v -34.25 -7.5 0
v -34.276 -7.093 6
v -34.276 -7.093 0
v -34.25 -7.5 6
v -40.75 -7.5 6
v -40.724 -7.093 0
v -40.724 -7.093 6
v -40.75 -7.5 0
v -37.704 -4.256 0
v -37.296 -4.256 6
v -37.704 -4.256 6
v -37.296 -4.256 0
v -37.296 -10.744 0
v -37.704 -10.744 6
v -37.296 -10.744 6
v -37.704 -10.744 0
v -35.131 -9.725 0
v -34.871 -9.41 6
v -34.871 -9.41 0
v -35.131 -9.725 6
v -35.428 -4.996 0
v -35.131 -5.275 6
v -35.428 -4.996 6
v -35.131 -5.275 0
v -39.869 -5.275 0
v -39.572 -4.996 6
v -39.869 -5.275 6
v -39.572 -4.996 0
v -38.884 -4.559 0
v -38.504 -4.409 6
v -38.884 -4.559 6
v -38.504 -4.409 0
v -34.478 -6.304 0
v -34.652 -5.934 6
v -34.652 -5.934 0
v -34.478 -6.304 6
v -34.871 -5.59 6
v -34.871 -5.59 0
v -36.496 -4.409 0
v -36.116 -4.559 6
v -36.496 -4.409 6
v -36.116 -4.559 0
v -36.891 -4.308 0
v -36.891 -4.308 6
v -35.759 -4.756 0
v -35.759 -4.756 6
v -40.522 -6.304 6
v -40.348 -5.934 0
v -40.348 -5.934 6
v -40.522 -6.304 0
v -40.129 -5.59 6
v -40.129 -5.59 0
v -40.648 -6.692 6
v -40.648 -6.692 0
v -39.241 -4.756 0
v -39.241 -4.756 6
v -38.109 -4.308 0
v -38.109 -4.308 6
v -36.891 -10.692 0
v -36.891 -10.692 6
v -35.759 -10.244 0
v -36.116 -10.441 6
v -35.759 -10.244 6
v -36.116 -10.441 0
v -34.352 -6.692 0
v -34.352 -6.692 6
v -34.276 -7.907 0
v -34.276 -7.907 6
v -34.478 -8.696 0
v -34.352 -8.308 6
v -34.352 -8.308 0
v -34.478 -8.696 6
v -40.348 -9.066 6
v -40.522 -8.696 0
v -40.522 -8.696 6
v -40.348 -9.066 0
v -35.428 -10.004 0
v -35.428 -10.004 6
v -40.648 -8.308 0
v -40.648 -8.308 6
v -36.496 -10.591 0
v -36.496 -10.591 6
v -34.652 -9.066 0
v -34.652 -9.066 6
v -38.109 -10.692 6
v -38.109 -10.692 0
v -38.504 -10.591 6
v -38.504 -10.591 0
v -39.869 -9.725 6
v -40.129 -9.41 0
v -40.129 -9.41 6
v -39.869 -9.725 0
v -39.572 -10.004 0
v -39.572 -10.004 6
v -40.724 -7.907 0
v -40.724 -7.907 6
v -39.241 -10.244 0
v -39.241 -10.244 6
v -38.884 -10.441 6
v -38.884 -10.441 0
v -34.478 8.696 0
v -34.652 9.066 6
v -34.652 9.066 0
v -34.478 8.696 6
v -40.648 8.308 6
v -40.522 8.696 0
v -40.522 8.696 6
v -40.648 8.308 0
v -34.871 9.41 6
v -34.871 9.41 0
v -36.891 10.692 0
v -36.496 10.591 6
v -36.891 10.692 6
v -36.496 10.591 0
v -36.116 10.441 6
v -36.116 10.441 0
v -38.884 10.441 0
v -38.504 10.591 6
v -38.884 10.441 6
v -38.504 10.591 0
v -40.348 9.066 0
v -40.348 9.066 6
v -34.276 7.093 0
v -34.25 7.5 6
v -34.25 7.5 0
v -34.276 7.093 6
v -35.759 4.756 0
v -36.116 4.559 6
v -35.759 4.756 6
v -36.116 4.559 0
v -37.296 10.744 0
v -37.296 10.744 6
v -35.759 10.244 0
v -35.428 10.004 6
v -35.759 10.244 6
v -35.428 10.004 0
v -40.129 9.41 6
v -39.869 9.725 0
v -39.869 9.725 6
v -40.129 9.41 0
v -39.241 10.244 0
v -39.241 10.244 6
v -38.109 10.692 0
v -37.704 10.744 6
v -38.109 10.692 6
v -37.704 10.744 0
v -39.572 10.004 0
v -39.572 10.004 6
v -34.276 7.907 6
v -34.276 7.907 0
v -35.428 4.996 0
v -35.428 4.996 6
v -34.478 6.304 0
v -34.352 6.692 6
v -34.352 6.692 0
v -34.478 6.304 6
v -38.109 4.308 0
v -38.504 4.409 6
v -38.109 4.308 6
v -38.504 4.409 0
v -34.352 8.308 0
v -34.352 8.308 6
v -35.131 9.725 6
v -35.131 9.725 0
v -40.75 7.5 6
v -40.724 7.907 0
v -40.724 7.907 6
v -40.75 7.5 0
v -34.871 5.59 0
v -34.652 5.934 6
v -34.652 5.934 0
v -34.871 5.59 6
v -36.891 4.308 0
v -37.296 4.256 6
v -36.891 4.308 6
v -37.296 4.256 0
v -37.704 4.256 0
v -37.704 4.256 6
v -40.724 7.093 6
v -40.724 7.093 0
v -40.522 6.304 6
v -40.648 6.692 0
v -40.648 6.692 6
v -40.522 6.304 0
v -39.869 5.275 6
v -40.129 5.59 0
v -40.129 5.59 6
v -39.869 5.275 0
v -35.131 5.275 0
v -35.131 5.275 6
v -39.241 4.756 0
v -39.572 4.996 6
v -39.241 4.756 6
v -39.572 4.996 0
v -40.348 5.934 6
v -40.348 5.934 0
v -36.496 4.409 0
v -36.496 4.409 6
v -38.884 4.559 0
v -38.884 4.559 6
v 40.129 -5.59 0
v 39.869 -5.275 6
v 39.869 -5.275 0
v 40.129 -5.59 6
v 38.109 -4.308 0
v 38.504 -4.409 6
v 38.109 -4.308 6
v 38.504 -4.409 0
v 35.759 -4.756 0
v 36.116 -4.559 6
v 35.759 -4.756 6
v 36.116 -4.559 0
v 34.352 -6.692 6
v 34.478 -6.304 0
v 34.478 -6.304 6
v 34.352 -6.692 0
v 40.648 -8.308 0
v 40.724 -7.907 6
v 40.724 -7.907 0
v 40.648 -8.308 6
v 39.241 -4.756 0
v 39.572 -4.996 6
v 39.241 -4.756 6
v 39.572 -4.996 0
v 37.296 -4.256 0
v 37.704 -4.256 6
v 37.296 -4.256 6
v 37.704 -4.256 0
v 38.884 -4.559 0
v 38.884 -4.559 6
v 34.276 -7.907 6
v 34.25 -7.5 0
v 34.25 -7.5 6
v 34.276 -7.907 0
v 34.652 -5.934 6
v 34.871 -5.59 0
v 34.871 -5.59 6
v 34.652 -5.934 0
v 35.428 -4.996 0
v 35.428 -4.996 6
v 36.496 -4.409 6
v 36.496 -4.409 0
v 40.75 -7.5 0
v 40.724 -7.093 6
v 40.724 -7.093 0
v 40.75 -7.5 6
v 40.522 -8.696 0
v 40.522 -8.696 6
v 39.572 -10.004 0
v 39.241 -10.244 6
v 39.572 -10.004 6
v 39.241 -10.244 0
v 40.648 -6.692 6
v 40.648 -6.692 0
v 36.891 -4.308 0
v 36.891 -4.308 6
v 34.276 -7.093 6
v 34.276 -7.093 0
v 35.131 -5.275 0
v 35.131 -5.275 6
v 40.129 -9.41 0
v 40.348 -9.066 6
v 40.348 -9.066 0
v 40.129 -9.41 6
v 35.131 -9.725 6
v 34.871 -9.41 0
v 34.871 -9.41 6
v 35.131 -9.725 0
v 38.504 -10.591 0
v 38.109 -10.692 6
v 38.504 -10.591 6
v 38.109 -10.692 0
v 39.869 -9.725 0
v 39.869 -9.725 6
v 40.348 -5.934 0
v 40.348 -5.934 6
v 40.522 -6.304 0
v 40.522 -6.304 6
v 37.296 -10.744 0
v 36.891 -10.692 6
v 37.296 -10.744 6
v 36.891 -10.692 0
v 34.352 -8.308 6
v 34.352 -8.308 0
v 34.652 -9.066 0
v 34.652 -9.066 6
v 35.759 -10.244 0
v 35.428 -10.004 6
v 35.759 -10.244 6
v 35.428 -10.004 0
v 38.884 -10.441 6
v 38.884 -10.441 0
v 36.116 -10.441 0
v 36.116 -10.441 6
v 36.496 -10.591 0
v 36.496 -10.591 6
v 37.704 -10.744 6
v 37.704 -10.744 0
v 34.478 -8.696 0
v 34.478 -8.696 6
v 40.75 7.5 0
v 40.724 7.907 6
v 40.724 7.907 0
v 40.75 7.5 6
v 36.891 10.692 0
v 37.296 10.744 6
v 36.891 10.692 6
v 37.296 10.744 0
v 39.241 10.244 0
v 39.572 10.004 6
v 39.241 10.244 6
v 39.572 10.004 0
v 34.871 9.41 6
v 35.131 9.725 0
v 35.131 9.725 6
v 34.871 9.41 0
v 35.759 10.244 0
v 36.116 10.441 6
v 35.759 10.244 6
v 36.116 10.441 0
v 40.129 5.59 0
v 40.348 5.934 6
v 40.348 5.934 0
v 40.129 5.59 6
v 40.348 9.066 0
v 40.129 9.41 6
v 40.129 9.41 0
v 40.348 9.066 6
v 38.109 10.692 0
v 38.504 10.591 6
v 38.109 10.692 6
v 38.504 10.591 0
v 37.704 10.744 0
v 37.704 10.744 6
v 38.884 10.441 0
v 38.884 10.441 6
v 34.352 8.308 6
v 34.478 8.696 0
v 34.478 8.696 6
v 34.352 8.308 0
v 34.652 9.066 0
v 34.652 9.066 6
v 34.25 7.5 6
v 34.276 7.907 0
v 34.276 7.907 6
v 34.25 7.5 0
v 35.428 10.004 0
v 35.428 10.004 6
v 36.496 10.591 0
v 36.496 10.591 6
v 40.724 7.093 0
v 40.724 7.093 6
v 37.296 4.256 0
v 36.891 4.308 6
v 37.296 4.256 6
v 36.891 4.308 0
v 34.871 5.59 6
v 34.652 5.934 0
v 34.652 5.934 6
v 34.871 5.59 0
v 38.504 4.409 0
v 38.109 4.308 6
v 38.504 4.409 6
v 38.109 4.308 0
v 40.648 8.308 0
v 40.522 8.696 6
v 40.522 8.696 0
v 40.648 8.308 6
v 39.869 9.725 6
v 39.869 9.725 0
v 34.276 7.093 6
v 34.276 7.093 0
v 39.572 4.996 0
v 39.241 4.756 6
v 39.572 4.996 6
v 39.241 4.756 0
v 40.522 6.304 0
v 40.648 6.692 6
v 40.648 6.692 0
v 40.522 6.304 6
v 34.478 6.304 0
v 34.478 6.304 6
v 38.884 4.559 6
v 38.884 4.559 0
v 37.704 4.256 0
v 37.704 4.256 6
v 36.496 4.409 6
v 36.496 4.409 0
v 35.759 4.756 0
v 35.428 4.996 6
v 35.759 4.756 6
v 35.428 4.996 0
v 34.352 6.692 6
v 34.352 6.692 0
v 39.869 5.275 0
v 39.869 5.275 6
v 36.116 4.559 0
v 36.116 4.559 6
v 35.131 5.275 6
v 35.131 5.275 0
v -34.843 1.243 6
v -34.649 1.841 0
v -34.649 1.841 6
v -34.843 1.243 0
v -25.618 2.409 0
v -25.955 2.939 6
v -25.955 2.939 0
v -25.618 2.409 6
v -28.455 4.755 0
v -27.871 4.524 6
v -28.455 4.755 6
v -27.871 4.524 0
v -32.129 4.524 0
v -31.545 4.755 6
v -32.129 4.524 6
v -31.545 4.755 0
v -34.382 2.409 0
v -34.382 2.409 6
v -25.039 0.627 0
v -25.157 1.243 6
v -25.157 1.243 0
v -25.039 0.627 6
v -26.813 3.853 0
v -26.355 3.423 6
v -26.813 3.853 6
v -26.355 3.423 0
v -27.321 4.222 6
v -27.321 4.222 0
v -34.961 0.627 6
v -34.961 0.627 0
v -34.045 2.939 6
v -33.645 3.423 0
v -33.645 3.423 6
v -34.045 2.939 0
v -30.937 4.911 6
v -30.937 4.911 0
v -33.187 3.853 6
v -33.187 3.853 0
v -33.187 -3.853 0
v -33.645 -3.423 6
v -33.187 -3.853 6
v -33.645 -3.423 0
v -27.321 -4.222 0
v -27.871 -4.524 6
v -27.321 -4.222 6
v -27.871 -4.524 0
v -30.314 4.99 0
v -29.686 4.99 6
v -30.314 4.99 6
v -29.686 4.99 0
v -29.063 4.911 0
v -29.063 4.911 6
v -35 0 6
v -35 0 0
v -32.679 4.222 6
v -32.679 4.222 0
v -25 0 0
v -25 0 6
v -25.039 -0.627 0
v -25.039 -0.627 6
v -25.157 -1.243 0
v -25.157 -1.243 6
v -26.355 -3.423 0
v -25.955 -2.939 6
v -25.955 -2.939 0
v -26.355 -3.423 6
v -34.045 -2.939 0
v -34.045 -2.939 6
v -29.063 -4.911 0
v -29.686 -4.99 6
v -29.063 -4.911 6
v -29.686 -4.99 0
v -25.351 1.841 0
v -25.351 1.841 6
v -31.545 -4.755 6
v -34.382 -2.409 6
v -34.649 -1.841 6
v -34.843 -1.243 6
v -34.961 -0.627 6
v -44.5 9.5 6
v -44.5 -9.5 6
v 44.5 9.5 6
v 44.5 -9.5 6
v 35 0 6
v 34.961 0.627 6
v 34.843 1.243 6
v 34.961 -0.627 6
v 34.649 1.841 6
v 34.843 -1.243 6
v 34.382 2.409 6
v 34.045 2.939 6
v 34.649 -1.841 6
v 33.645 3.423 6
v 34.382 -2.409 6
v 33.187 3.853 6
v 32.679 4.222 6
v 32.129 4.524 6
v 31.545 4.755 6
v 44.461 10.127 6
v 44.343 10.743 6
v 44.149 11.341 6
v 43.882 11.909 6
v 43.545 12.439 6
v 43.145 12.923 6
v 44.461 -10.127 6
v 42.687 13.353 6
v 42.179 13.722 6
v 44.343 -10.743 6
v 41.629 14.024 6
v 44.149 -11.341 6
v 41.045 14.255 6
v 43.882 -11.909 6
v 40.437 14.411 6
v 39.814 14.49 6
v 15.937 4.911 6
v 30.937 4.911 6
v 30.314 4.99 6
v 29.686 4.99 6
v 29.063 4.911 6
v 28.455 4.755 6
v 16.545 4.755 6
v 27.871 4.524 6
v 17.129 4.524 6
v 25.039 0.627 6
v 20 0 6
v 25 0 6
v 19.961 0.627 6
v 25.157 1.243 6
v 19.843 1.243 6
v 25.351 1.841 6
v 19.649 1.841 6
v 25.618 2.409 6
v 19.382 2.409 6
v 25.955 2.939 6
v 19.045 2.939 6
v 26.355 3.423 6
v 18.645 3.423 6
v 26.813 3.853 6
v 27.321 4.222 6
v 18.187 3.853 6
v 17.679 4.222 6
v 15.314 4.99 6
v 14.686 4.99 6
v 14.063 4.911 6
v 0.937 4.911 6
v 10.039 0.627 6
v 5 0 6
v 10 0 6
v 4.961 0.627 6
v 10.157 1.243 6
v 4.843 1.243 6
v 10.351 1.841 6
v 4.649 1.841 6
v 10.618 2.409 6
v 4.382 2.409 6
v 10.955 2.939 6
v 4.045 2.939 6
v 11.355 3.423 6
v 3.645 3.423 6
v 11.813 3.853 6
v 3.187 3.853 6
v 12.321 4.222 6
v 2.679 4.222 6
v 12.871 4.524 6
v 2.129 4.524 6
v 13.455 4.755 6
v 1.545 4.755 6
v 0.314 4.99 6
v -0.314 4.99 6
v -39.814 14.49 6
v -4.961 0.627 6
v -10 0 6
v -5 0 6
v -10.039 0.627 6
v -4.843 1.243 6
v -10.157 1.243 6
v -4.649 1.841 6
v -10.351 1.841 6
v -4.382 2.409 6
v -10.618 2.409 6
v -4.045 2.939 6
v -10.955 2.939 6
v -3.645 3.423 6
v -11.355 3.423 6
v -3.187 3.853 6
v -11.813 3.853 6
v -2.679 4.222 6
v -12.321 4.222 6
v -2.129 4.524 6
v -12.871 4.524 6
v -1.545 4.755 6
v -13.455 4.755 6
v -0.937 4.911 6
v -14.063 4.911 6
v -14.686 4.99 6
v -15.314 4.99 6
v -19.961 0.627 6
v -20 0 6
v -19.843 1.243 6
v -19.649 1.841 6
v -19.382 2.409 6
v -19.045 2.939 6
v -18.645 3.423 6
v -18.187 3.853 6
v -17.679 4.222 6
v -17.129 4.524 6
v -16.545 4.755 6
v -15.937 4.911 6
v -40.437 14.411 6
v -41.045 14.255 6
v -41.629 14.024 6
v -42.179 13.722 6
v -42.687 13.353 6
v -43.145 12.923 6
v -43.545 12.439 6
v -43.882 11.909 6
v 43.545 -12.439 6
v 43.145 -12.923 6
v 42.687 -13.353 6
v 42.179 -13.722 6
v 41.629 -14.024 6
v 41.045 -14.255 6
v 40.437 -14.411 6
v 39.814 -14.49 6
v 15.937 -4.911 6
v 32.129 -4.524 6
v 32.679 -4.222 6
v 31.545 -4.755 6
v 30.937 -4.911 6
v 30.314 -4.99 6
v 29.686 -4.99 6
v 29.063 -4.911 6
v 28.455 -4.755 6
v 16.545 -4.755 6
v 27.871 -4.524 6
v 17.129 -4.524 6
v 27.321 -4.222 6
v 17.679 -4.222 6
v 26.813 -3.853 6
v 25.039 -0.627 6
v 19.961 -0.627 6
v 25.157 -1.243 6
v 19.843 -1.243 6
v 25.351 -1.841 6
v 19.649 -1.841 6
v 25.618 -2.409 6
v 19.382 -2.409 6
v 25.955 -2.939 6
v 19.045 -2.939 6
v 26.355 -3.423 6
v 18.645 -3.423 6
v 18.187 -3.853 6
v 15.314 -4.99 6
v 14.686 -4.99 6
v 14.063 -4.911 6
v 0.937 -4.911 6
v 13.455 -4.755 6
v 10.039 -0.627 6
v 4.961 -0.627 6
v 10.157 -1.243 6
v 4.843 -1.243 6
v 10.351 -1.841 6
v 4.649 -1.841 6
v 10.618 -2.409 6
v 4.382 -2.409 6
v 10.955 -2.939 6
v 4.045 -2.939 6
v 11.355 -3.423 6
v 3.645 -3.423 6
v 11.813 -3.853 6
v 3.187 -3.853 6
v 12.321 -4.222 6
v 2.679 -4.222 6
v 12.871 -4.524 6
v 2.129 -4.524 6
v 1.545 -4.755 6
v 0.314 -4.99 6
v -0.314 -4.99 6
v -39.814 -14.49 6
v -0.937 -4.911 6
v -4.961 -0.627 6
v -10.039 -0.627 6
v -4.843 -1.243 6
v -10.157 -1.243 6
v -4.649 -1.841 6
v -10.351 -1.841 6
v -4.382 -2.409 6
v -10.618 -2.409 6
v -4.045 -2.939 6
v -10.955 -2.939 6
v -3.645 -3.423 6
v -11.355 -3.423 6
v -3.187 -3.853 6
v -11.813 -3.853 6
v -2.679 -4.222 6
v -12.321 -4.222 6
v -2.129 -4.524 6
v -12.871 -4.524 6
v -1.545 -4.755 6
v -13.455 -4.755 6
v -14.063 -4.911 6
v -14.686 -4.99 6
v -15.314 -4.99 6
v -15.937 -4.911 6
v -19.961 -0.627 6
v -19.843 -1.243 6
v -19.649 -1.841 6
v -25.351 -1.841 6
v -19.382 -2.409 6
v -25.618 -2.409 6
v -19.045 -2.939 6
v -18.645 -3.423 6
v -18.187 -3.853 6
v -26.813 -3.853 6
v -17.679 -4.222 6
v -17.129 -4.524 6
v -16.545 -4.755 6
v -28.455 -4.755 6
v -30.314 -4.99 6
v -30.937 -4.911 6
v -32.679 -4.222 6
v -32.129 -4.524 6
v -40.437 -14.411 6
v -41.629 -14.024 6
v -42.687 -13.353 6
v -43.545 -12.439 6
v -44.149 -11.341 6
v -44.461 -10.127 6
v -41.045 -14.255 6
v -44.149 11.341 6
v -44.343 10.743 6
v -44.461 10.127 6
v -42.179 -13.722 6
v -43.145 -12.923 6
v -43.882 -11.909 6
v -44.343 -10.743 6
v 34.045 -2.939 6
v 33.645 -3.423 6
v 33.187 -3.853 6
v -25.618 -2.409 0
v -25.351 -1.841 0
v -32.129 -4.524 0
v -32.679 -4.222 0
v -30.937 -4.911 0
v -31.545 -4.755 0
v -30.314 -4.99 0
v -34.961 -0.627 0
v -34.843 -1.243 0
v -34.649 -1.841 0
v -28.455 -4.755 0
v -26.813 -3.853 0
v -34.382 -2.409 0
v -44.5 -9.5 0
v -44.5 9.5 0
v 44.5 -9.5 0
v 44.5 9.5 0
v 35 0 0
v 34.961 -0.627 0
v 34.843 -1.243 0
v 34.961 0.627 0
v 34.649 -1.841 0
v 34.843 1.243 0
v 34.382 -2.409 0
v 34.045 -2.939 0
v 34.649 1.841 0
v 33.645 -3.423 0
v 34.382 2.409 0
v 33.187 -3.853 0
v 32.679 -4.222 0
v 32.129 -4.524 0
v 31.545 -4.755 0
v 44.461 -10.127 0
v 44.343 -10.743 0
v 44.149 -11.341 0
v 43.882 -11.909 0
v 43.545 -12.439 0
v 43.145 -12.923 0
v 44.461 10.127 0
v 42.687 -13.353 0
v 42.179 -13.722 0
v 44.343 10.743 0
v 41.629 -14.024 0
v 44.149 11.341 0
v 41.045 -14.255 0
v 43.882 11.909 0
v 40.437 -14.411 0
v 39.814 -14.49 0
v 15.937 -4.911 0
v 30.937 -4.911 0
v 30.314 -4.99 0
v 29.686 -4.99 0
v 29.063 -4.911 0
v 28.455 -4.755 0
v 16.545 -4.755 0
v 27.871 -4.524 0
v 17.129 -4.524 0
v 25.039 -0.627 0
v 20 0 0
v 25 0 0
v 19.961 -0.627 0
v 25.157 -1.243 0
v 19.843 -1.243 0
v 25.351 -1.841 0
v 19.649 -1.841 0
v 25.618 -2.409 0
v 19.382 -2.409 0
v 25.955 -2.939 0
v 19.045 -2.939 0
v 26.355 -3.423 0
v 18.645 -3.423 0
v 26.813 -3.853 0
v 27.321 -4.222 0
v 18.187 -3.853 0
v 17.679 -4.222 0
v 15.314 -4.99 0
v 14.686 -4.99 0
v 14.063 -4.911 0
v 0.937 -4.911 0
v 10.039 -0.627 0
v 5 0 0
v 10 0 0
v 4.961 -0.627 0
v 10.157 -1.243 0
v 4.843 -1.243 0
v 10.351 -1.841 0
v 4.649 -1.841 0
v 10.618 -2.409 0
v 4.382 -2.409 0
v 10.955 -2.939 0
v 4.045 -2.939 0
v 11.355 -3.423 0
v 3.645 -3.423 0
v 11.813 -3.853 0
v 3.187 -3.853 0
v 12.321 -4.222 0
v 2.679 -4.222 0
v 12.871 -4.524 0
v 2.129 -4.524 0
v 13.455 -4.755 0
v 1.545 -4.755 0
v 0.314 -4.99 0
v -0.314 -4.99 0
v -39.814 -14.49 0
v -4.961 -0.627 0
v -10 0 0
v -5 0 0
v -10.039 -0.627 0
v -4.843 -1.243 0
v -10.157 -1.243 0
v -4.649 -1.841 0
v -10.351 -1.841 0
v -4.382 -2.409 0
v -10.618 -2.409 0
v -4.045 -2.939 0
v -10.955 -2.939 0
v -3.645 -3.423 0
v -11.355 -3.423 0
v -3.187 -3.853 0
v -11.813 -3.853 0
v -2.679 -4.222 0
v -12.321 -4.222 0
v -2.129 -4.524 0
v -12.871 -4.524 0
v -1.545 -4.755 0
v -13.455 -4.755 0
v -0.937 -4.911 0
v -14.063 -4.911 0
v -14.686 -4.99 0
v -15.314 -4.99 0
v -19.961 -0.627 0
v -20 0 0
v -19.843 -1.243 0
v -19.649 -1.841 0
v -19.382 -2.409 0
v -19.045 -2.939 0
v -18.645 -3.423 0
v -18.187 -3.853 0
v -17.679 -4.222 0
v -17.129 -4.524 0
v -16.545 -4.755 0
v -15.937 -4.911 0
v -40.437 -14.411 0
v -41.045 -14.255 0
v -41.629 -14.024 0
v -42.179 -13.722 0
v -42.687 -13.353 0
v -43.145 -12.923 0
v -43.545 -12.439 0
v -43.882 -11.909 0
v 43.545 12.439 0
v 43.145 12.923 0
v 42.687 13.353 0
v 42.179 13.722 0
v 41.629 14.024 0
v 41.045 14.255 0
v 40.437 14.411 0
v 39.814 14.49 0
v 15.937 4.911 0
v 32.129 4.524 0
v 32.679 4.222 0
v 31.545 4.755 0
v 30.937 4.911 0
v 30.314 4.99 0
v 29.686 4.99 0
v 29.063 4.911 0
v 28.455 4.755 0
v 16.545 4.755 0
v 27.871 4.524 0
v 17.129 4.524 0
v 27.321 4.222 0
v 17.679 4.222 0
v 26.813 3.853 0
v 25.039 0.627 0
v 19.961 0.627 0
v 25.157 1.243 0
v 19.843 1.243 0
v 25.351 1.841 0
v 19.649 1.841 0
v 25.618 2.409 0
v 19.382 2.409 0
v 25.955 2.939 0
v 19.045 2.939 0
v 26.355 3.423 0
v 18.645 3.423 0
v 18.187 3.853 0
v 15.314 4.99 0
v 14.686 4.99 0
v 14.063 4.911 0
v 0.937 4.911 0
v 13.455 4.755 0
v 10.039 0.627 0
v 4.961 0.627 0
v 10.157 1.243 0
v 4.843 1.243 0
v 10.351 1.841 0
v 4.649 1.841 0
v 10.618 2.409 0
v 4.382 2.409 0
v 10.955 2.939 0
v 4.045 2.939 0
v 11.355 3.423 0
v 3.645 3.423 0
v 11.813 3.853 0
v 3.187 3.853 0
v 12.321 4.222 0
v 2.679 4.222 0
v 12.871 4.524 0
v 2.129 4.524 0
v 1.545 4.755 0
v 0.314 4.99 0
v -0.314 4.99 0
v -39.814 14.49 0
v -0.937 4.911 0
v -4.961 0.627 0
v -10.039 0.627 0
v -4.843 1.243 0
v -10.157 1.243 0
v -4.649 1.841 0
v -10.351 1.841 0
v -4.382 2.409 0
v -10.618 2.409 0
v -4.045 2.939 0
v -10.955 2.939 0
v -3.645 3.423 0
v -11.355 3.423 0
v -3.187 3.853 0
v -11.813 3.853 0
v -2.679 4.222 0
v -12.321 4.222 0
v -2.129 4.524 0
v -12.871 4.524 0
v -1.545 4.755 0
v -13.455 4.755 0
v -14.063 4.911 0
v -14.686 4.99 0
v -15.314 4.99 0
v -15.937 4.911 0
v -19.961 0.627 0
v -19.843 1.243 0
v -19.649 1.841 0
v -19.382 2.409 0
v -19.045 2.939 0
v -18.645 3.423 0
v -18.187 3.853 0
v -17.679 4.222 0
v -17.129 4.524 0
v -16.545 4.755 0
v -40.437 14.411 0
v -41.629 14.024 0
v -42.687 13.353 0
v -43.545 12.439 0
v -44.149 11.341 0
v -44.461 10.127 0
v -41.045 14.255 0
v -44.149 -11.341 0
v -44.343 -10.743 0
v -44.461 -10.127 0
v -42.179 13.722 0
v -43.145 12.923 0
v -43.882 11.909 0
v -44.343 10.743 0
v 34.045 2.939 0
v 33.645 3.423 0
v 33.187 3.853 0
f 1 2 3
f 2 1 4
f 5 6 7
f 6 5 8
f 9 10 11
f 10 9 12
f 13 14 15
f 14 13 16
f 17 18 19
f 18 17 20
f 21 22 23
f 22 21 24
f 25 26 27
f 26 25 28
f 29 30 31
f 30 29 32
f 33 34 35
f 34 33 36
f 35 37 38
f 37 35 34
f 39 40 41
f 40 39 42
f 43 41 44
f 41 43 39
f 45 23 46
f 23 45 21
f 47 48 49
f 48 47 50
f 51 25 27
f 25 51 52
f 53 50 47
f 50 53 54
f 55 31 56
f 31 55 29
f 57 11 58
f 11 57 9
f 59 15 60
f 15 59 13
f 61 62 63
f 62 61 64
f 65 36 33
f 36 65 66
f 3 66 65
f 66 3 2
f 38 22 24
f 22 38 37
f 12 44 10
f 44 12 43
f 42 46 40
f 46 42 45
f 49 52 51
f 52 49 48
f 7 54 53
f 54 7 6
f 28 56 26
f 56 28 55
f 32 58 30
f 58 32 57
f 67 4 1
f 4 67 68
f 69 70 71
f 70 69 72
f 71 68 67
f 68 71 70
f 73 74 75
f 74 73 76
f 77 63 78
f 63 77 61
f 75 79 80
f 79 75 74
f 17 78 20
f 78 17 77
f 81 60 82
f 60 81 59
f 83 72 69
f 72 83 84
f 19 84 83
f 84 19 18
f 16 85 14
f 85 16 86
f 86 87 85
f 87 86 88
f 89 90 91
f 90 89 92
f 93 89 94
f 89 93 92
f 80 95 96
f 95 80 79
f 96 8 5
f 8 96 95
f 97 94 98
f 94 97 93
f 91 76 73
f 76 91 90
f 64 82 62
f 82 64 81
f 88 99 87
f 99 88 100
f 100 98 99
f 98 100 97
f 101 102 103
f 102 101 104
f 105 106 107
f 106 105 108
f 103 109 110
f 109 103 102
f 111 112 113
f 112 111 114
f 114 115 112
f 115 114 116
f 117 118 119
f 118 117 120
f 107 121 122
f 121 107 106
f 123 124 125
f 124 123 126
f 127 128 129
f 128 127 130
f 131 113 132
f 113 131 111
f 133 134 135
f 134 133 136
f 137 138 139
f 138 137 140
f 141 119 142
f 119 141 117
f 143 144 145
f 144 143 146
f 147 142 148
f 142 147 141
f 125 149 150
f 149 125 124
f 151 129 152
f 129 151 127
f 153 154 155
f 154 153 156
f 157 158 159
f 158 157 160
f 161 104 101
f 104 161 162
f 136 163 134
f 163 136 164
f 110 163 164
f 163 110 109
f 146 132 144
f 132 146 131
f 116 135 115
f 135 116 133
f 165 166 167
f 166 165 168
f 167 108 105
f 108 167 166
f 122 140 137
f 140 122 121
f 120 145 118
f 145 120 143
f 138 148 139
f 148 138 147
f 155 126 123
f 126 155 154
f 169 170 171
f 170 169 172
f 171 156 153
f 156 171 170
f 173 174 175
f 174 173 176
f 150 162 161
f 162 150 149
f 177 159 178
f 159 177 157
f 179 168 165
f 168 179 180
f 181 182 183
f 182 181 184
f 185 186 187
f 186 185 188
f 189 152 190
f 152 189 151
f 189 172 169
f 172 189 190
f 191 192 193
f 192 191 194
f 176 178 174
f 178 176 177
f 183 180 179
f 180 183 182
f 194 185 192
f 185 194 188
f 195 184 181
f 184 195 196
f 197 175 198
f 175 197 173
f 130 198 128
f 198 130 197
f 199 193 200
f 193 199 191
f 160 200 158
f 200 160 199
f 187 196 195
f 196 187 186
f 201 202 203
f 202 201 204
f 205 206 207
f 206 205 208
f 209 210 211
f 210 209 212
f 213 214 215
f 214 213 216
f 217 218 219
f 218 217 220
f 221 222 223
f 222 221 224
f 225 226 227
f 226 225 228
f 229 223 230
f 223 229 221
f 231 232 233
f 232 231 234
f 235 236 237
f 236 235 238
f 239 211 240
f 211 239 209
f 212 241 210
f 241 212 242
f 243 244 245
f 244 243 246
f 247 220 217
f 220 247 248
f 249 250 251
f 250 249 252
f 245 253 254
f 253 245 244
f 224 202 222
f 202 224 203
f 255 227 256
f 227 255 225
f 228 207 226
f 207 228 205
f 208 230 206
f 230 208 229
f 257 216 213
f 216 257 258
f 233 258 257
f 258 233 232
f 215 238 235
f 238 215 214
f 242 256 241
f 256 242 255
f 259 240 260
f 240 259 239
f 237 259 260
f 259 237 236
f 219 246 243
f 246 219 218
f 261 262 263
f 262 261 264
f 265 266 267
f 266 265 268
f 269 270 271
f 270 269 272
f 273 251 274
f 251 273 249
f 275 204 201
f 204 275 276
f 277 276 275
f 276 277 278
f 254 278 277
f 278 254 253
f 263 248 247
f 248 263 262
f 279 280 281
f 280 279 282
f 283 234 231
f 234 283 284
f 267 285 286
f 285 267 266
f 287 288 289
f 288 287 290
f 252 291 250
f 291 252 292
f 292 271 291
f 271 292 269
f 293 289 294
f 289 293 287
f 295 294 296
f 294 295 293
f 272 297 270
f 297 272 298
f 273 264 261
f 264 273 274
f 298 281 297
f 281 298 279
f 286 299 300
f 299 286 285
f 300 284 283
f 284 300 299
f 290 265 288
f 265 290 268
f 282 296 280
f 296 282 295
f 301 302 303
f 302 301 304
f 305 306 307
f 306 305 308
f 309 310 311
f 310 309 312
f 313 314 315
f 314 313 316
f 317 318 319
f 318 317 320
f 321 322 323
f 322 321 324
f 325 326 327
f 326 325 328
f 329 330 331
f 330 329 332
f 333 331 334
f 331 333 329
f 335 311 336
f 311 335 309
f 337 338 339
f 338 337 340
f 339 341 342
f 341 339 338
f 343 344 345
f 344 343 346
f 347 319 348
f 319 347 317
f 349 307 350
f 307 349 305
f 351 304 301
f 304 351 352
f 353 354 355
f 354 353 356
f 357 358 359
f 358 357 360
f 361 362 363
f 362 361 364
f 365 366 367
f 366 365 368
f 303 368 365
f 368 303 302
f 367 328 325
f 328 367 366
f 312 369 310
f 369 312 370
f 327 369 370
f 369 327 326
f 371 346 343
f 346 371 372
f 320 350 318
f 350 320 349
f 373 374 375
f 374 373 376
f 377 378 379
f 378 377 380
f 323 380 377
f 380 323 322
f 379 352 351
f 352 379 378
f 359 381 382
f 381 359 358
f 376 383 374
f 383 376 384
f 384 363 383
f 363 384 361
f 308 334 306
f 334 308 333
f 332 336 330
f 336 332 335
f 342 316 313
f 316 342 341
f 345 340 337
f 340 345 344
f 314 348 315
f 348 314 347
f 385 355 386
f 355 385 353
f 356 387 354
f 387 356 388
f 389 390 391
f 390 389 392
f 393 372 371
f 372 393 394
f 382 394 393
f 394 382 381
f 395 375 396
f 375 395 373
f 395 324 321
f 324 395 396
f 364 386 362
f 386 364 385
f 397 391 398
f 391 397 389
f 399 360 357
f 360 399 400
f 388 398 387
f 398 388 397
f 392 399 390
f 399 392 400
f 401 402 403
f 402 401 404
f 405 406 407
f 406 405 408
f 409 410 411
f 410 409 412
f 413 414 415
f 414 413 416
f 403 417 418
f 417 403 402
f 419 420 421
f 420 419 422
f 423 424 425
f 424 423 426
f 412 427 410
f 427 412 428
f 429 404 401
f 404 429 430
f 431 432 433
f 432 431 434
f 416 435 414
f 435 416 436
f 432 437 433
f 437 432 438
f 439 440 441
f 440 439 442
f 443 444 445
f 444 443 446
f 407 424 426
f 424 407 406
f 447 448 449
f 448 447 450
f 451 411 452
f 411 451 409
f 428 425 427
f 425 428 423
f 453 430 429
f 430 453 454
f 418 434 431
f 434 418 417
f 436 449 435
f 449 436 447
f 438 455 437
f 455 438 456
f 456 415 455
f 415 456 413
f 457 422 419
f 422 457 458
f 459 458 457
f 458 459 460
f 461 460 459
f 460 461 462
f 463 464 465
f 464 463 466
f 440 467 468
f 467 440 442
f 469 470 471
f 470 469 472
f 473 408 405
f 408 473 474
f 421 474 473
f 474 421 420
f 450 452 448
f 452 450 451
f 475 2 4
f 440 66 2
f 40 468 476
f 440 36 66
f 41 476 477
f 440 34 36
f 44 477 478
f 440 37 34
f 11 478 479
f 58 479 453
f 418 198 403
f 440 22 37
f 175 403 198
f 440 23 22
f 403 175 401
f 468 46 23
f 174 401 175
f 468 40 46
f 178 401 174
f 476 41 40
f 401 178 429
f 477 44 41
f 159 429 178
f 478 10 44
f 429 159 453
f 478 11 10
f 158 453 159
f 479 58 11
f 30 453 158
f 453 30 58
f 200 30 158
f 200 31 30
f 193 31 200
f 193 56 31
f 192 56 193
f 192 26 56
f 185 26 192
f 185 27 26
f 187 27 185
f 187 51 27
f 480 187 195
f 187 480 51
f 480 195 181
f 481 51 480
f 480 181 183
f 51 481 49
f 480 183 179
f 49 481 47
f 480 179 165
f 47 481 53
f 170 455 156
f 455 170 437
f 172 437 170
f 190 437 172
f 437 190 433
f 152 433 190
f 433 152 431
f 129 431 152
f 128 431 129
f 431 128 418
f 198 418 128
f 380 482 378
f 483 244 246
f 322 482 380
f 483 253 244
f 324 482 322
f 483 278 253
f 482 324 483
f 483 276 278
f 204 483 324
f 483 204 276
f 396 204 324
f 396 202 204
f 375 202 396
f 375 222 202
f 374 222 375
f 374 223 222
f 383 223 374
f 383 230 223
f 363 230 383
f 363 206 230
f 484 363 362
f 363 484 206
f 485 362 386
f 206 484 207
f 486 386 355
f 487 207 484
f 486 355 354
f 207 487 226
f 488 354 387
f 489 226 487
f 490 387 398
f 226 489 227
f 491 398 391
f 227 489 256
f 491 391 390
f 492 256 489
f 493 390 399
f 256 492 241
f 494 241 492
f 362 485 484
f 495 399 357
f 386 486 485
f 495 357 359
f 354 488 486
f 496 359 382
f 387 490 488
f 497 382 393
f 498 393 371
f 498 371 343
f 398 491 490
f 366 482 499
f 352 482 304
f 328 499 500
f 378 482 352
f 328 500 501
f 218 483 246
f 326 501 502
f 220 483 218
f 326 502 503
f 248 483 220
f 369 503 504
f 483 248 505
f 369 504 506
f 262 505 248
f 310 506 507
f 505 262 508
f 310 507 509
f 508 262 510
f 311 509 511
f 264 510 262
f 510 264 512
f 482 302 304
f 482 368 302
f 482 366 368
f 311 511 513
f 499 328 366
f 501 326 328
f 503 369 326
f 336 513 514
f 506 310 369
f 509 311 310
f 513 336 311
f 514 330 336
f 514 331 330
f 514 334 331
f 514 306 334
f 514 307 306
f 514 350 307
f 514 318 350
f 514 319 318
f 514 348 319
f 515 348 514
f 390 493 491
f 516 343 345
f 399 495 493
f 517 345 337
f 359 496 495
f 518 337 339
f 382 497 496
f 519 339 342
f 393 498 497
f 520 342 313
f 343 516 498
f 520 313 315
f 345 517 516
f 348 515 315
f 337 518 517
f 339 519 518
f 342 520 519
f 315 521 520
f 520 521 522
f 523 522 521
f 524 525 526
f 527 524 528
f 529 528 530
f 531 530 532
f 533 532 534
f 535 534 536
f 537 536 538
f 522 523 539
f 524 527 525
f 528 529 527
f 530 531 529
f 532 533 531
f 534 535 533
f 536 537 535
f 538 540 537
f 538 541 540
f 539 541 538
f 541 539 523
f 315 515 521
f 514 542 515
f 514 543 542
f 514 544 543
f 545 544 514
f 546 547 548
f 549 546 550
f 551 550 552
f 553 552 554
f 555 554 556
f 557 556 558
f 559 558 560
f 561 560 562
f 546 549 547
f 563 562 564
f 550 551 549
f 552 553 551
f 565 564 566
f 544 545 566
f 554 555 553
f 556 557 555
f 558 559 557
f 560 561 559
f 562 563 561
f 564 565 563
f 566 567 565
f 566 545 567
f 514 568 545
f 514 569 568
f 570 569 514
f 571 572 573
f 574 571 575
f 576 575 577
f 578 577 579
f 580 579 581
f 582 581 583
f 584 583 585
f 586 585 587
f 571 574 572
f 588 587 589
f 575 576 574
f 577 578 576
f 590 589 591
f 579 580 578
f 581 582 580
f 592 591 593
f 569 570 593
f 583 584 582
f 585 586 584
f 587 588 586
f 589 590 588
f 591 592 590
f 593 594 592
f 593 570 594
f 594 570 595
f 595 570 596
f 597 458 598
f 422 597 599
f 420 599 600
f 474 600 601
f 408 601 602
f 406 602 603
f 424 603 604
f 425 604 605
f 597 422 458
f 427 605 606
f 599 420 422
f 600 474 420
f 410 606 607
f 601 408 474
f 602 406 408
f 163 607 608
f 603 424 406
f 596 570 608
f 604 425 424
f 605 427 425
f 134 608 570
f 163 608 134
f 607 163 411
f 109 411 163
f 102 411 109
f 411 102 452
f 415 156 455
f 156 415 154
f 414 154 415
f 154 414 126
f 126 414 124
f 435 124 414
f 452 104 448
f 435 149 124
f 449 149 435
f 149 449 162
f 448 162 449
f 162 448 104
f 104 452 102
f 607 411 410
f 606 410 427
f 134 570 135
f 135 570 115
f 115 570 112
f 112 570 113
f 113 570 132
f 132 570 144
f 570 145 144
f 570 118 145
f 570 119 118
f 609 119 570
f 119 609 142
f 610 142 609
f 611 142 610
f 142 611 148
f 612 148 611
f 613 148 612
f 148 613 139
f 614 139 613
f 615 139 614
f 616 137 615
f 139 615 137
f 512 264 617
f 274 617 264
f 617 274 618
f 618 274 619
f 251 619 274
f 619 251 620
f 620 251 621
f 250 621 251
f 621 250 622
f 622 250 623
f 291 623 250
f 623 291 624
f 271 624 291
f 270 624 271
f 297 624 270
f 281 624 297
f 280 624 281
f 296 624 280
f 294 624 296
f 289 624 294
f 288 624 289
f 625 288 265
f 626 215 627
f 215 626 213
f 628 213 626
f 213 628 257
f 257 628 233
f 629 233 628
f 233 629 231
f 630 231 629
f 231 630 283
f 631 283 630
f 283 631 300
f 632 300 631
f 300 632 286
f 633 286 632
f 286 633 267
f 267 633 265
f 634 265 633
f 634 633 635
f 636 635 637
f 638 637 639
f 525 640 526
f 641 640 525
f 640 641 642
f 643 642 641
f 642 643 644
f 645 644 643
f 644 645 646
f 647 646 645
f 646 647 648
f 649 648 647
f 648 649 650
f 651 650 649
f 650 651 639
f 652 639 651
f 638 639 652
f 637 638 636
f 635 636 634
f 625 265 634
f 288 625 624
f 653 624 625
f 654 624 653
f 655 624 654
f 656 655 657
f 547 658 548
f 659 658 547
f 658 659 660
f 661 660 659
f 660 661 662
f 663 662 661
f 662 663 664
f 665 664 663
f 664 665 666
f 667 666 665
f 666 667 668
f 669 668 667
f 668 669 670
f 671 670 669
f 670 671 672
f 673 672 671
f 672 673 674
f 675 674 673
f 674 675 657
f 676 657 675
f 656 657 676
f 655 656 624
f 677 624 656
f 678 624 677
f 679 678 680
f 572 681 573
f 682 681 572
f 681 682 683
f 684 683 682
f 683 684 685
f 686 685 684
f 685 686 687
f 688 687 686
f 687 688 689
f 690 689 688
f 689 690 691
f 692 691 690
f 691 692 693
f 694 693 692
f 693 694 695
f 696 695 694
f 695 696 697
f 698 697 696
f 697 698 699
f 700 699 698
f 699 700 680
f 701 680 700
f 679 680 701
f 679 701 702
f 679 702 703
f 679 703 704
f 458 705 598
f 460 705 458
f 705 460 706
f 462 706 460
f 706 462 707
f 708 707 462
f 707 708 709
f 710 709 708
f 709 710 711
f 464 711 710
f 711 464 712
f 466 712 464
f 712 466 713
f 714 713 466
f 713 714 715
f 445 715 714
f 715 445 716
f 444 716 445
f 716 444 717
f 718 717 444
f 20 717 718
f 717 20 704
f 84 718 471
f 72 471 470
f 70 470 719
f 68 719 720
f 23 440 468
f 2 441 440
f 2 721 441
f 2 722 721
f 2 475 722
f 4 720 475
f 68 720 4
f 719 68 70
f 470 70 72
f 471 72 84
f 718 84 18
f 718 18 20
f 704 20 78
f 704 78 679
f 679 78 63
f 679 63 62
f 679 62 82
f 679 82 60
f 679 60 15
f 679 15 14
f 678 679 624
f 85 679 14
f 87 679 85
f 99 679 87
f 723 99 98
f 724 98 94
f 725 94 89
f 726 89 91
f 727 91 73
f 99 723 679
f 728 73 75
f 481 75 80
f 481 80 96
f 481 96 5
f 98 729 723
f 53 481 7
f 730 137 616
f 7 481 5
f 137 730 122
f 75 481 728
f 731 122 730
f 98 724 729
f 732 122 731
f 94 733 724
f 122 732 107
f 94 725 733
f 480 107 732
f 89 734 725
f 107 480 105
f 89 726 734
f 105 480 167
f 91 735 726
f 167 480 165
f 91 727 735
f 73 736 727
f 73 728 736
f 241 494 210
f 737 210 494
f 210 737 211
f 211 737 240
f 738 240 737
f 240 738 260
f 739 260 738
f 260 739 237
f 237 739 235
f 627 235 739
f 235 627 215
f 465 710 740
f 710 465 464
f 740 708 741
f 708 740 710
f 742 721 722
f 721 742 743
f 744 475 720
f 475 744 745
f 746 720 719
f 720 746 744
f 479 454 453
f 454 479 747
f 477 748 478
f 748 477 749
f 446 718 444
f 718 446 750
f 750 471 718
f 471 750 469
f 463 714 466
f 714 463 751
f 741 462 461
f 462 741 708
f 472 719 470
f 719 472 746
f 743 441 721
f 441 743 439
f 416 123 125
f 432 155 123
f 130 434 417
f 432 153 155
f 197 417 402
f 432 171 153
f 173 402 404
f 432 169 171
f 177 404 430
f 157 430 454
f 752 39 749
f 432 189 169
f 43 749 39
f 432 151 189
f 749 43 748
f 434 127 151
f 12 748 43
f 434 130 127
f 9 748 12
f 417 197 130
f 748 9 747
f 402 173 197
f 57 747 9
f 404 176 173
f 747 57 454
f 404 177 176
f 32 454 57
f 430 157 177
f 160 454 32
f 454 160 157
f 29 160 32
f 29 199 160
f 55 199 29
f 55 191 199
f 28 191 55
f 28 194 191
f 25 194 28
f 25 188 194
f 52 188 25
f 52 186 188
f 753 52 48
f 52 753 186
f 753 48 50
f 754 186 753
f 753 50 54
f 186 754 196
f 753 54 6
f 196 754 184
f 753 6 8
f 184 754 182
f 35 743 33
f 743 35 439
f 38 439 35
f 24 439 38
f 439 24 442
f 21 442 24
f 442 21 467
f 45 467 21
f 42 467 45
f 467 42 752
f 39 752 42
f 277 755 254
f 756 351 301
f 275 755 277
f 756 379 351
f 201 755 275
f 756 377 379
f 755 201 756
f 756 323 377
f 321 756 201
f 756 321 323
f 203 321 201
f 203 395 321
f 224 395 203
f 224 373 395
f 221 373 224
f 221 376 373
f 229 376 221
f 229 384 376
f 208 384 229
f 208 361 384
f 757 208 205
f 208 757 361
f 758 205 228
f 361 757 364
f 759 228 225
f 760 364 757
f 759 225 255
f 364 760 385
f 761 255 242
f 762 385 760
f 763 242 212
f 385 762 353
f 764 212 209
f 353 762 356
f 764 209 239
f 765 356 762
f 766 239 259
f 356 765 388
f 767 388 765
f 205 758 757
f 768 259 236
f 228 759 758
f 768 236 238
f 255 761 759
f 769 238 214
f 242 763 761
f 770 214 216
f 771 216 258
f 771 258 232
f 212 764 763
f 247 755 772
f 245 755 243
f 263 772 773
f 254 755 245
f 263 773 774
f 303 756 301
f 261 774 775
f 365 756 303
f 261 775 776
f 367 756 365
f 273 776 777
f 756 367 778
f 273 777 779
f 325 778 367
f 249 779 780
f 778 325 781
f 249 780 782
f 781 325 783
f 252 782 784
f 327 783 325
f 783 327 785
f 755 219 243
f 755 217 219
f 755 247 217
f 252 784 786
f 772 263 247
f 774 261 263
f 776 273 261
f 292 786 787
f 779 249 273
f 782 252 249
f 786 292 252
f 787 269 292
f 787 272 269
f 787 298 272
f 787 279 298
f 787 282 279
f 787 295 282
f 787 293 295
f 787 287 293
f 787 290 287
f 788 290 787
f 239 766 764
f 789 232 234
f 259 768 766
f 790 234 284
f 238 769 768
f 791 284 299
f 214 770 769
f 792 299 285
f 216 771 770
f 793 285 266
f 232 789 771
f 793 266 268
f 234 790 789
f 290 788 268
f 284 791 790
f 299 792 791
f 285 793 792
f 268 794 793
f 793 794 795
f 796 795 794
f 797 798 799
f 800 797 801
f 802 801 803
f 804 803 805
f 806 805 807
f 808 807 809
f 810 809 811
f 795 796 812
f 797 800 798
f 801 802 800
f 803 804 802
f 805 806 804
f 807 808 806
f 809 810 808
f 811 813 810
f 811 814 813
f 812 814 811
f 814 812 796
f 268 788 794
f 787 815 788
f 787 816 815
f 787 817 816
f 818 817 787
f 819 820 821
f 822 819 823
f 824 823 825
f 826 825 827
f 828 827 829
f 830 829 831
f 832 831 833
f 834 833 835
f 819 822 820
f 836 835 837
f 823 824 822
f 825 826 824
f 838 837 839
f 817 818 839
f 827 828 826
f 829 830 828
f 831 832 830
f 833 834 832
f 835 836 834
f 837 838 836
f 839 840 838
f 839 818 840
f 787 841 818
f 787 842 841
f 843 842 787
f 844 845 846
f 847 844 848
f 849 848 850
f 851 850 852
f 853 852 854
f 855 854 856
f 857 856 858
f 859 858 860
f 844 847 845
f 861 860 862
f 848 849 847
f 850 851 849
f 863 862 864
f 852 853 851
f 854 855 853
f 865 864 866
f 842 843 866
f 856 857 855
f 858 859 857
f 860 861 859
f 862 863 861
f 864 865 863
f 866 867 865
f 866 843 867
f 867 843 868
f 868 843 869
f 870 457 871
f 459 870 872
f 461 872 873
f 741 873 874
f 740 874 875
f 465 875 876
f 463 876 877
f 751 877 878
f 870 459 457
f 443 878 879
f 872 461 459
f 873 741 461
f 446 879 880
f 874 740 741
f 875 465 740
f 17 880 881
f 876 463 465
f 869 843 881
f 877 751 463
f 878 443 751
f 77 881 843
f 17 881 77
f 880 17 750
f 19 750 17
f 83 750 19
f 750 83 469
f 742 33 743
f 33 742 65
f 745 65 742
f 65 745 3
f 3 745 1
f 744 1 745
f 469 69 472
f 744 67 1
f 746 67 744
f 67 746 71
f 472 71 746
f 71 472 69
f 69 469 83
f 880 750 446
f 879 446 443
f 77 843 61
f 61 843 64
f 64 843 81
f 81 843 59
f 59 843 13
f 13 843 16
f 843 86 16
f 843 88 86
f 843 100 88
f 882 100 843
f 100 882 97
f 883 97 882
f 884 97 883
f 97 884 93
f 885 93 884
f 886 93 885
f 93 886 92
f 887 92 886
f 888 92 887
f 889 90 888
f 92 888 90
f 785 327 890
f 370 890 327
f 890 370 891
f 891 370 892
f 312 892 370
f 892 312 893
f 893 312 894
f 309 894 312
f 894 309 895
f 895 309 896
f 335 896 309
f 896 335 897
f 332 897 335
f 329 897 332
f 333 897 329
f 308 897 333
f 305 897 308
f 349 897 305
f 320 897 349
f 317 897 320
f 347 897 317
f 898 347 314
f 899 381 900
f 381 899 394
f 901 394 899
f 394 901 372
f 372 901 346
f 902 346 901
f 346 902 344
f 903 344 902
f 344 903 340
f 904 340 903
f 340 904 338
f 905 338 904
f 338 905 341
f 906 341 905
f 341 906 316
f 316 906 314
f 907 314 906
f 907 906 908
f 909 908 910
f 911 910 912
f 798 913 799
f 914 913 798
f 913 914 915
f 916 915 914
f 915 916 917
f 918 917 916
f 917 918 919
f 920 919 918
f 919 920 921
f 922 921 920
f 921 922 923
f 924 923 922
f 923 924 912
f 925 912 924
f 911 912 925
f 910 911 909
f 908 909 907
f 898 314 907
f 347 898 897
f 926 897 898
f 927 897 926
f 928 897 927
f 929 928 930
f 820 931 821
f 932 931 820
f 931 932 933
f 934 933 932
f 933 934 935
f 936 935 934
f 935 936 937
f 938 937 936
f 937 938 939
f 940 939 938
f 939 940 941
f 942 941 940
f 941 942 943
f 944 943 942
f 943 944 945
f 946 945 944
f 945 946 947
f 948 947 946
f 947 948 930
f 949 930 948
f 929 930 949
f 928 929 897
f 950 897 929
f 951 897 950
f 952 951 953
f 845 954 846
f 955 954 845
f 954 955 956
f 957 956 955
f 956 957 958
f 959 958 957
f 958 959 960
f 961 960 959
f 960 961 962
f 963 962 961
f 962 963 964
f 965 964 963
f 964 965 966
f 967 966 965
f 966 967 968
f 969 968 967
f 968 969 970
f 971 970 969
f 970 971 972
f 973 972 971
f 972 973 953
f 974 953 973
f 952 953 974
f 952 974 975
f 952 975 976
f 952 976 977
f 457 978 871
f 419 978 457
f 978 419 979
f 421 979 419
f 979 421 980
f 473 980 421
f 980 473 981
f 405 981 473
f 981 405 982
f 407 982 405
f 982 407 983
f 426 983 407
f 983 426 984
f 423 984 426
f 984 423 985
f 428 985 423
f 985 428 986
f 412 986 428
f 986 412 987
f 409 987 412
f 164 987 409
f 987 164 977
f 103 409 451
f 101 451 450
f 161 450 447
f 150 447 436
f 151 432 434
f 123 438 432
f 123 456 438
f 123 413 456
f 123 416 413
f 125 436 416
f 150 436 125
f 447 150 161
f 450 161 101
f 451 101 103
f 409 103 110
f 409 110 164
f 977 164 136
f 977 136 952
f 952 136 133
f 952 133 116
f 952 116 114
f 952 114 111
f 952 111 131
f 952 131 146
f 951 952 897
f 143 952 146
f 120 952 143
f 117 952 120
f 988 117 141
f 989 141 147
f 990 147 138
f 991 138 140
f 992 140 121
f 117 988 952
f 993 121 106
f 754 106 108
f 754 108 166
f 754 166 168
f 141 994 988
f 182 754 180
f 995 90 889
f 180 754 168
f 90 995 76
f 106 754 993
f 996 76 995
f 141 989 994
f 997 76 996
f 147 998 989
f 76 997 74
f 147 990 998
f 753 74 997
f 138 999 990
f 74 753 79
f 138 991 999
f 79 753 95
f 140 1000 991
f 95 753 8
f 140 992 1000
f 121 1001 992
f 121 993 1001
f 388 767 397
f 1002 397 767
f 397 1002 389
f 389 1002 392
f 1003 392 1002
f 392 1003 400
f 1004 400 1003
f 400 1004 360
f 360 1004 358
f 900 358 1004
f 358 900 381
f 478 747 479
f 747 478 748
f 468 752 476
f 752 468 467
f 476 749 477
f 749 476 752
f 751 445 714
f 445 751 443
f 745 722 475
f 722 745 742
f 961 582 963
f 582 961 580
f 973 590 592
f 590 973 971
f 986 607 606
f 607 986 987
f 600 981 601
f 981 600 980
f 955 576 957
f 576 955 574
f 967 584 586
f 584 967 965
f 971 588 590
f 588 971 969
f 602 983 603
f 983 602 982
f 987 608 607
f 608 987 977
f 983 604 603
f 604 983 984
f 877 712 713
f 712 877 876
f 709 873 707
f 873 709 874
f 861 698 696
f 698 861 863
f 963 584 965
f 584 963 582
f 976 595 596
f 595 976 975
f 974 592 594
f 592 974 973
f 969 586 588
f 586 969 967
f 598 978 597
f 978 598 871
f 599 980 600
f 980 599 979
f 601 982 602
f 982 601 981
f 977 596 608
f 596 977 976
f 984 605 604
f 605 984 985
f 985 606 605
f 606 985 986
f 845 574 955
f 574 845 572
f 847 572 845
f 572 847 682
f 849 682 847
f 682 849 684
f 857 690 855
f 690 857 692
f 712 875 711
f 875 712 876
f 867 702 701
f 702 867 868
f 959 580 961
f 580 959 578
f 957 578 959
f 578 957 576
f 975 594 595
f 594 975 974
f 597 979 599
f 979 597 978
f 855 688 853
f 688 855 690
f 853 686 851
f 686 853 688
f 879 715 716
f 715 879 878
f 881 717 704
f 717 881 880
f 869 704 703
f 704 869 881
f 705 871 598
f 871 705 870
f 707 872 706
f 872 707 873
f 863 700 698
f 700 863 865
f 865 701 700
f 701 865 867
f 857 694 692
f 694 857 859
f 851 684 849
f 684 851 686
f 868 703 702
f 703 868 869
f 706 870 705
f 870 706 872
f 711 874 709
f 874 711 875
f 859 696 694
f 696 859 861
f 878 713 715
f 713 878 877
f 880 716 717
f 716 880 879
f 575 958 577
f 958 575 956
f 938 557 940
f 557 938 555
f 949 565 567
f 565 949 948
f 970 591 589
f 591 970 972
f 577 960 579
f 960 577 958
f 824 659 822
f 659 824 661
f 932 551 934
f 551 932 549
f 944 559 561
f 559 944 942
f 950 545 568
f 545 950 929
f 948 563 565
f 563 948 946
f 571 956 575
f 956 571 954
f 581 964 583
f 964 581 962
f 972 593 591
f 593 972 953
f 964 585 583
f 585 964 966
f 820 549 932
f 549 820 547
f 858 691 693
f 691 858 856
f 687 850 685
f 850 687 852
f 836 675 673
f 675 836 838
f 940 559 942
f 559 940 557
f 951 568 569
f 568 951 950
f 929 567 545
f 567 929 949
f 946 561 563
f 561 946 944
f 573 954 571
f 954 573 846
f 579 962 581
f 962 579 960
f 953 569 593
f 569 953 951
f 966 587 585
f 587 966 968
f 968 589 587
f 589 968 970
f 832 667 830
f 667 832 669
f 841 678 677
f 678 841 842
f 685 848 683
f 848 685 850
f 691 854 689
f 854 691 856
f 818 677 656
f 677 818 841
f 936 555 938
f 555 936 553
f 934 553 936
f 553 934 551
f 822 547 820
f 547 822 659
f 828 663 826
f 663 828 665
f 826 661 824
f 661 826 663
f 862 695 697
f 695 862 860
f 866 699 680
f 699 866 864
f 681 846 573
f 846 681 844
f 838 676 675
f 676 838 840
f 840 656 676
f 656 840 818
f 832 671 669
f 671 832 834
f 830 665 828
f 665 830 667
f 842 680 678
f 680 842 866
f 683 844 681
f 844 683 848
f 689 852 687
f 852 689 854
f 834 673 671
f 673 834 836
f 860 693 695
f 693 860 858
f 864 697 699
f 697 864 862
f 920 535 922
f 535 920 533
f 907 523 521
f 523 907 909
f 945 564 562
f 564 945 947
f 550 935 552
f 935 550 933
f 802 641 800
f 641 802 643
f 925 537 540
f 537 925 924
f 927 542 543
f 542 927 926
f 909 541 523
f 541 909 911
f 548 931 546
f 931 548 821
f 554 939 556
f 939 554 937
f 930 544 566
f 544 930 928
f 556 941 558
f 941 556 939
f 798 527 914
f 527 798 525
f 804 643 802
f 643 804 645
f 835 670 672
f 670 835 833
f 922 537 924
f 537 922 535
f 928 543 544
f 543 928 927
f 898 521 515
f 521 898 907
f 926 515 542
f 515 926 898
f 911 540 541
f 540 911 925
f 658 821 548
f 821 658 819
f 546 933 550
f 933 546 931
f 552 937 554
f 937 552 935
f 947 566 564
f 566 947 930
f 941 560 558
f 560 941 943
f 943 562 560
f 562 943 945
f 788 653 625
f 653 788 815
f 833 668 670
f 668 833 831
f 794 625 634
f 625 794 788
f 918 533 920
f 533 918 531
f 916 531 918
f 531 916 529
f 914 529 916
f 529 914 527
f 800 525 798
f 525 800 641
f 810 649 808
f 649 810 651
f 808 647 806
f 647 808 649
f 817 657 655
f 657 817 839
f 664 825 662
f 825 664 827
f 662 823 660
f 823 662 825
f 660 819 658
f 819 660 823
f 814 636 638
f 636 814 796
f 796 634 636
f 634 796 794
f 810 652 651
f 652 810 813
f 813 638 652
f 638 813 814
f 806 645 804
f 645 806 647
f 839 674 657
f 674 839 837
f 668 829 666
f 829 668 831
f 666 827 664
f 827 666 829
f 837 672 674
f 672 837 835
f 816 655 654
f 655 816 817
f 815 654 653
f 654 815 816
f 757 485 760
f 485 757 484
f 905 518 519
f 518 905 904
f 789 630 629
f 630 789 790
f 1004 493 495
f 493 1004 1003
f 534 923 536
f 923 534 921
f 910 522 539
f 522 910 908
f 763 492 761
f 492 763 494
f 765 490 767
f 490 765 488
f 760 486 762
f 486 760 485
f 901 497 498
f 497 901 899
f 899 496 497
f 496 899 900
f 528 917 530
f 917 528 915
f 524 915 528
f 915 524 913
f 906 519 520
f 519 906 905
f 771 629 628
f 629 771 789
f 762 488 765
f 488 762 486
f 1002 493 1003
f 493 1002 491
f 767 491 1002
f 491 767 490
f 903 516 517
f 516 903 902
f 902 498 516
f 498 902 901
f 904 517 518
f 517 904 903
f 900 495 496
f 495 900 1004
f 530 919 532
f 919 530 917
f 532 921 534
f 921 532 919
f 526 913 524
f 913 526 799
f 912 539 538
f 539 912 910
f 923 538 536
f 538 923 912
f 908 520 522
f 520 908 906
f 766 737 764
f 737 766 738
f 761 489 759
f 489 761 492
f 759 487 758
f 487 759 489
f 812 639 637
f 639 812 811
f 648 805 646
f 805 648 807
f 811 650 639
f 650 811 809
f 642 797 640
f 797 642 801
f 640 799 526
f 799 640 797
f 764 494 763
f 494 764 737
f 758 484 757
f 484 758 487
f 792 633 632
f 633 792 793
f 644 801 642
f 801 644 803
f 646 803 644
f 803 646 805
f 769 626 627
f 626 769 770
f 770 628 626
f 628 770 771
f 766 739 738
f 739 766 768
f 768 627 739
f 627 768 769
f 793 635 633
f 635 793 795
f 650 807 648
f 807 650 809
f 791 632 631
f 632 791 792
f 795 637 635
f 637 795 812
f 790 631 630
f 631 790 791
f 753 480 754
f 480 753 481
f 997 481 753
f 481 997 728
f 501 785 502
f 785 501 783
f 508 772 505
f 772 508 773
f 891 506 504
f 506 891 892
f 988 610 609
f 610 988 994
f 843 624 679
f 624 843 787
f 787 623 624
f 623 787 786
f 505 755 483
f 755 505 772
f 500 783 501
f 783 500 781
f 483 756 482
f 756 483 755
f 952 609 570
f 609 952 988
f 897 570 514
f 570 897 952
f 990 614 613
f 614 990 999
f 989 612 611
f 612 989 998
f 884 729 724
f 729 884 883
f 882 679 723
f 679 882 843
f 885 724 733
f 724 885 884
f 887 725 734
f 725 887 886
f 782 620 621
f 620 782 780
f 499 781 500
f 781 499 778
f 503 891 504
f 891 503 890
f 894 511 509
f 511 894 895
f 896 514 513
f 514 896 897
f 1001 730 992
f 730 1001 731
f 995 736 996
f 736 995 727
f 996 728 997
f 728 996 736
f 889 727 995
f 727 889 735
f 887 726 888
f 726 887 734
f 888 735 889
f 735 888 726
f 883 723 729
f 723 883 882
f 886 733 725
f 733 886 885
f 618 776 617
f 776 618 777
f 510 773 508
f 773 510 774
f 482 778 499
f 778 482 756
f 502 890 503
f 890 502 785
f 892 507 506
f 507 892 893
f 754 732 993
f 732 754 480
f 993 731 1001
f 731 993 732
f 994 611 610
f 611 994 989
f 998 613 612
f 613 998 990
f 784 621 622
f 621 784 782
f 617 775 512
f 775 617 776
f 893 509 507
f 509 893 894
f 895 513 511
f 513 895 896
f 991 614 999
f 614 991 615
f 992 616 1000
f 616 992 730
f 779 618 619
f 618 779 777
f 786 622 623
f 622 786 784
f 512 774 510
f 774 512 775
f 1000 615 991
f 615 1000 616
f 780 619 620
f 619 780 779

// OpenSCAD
$fn = 50;


difference() {
	union() {
		hull() {
			translate(v = [-39.5000000000, 9.5000000000, 0]) {
				cylinder(h = 6, r = 5);
			}
			translate(v = [39.5000000000, 9.5000000000, 0]) {
				cylinder(h = 6, r = 5);
			}
			translate(v = [-39.5000000000, -9.5000000000, 0]) {
				cylinder(h = 6, r = 5);
			}
			translate(v = [39.5000000000, -9.5000000000, 0]) {
				cylinder(h = 6, r = 5);
			}
		}
	}
	union() {
		#translate(v = [-37.5000000000, -7.5000000000, -100.0000000000]) {
			cylinder(h = 200, r = 3.2500000000);
		}
		#translate(v = [-37.5000000000, 7.5000000000, -100.0000000000]) {
			cylinder(h = 200, r = 3.2500000000);
		}
		#translate(v = [37.5000000000, -7.5000000000, -100.0000000000]) {
			cylinder(h = 200, r = 3.2500000000);
		}
		#translate(v = [37.5000000000, 7.5000000000, -100.0000000000]) {
			cylinder(h = 200, r = 3.2500000000);
		}
		#translate(v = [-30.0000000000, 0, 0]) {
			cylinder(h = 6, r = 5.0000000000);
		}
		#translate(v = [-15.0000000000, 0, 0]) {
			cylinder(h = 6, r = 5.0000000000);
		}
		#cylinder(h = 6, r = 5.0000000000);
		#translate(v = [15.0000000000, 0, 0]) {
			cylinder(h = 6, r = 5.0000000000);
		}
		#translate(v = [30.0000000000, 0, 0]) {
			cylinder(h = 6, r = 5.0000000000);
		}
	}
}
